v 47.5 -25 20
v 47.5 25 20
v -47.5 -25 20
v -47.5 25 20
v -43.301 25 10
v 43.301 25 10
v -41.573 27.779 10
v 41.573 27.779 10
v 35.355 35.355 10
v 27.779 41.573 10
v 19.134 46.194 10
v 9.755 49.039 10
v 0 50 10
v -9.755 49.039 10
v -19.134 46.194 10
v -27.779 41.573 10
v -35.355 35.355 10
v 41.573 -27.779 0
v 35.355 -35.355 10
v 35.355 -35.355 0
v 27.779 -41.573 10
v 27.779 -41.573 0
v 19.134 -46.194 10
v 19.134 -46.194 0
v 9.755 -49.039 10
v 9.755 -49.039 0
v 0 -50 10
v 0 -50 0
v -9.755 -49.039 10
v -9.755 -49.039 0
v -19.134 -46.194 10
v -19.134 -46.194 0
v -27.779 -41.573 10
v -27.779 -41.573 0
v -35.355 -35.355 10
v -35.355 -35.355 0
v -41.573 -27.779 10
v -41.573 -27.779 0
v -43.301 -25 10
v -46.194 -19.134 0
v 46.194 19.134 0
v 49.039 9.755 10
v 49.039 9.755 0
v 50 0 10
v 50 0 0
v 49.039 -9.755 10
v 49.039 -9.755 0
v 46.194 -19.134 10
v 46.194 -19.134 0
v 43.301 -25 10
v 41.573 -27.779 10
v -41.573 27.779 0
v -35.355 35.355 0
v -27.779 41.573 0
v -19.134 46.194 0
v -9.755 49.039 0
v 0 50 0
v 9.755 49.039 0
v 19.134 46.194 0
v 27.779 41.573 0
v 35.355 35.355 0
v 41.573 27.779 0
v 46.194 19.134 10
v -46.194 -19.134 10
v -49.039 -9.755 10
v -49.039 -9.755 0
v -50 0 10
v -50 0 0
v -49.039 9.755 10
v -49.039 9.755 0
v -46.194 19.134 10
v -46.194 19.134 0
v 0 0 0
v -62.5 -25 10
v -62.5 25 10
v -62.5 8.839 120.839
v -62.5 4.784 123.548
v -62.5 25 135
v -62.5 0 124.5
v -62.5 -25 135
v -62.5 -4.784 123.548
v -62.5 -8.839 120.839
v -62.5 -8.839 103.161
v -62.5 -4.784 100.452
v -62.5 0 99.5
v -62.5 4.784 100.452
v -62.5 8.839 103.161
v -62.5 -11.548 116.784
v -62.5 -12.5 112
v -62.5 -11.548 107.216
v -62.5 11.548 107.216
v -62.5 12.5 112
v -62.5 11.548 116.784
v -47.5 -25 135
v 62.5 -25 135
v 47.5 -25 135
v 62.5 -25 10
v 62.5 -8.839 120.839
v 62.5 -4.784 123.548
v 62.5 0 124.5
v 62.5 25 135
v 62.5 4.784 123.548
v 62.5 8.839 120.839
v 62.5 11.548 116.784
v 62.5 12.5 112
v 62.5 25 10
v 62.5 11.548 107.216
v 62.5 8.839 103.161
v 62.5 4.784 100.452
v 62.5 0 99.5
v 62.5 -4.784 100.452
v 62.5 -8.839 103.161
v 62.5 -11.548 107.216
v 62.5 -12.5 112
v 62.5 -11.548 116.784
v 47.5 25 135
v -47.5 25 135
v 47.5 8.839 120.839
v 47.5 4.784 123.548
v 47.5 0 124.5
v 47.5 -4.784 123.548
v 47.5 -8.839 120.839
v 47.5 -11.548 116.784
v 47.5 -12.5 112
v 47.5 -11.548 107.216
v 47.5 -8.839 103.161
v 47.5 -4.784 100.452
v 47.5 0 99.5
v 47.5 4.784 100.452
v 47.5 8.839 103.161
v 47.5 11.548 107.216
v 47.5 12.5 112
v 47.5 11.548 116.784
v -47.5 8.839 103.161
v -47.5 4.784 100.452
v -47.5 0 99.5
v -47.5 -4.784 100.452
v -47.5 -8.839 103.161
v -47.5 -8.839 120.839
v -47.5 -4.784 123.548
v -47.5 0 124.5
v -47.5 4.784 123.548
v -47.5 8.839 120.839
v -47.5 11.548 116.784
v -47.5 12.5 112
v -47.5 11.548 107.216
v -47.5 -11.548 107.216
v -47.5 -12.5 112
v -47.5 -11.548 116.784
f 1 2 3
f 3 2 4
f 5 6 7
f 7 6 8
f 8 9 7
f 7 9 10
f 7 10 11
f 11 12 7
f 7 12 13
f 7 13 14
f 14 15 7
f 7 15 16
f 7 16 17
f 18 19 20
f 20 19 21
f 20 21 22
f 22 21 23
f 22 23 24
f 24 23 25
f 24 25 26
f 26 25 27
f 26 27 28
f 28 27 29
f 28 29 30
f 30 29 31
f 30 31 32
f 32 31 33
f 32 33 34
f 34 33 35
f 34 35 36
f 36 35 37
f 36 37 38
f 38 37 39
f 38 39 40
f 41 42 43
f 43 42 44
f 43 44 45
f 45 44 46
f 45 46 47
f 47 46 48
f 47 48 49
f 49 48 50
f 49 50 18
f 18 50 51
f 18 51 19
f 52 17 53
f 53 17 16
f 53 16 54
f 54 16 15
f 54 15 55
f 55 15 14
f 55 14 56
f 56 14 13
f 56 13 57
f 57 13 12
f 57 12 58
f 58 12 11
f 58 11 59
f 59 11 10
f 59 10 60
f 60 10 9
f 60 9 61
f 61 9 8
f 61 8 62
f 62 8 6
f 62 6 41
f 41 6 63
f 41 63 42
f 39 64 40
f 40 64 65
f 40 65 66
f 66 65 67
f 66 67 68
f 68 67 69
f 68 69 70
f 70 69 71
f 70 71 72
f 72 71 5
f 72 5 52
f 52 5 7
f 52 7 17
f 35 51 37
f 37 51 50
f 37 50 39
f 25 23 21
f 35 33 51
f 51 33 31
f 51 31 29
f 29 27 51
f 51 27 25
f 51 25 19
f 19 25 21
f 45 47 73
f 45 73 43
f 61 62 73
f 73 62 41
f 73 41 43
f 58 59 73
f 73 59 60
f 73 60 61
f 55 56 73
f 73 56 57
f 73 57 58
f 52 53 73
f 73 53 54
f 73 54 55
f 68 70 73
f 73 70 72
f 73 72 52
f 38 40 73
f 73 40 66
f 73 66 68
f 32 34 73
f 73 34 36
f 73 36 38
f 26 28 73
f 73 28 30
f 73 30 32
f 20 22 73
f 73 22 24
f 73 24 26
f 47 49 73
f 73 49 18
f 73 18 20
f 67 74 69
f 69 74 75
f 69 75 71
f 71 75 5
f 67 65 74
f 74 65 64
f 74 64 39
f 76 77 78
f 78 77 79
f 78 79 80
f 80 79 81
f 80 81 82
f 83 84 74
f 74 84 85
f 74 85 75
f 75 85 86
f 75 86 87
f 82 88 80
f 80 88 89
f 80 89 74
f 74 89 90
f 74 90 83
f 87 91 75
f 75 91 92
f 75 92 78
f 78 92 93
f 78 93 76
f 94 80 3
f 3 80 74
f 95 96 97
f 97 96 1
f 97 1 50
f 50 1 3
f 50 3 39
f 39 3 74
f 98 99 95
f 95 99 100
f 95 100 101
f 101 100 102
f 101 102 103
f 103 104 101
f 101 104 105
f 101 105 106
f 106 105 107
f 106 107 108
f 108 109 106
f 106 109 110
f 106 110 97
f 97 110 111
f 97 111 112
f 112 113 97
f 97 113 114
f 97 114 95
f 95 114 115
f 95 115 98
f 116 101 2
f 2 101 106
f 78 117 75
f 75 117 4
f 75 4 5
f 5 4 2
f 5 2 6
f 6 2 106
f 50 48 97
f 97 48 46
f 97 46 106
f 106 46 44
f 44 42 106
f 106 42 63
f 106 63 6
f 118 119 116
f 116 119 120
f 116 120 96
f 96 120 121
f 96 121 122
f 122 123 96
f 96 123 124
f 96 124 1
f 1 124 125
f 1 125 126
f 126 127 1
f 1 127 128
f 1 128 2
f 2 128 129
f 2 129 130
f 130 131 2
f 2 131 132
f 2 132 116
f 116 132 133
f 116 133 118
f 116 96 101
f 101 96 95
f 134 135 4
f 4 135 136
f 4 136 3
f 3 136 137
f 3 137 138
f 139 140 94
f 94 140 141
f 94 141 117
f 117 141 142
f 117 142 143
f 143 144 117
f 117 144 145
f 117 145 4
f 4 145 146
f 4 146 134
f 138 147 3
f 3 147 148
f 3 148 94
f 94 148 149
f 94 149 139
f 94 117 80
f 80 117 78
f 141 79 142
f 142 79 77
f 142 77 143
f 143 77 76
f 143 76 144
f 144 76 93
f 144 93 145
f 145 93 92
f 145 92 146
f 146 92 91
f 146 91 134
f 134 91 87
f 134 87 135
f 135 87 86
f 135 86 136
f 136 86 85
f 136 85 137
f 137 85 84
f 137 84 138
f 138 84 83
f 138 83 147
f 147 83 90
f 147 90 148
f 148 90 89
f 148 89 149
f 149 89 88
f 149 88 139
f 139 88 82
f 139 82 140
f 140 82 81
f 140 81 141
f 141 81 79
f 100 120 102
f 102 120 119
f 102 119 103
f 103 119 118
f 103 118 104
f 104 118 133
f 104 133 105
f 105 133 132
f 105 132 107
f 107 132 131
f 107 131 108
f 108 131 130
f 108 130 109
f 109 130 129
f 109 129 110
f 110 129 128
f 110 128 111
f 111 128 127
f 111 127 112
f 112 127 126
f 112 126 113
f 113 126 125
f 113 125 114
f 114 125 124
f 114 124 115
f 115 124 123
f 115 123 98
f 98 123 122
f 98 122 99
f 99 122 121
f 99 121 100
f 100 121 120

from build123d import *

# Parameters (mm, degrees)
SKETCH1_R           = 50
BOSS_EXTRUDE1_DEPTH = 10
SKETCH2_W           = 125
SKETCH2_H           = 50
BOSS_EXTRUDE2_DEPTH = 10
SKETCH3_W           = 15
SKETCH3_H           = 50
BOSS_EXTRUDE3_DEPTH = 115
SKETCH4_R           = 12.5
CUT_EXTRUDE1_DEPTH  = 126


with BuildPart() as part:
    # Sketch1 → Boss-Extrude1 (new body)
    with BuildSketch(Plane.XY):
        Circle(SKETCH1_R)
    extrude(amount=BOSS_EXTRUDE1_DEPTH)

    # Sketch2 → Boss-Extrude2 (add)
    with BuildSketch(Plane.XY.offset(10)):
        Rectangle(SKETCH2_W, SKETCH2_H)
    extrude(amount=BOSS_EXTRUDE2_DEPTH)

    # Sketch3 → Boss-Extrude3 (add)
    with BuildSketch(Plane.XY.offset(20)):
        with Locations((-55, 0)):
            Rectangle(SKETCH3_W, SKETCH3_H)
        with Locations((55, 0)):
            Rectangle(SKETCH3_W, SKETCH3_H)
    extrude(amount=BOSS_EXTRUDE3_DEPTH)

    # Sketch4 → Cut-Extrude1 (cut, through all)
    with BuildSketch(Plane.ZY.offset(62.5)):
        with Locations((112, 0)):
            Circle(SKETCH4_R)
    extrude(amount=-CUT_EXTRUDE1_DEPTH, mode=Mode.SUBTRACT)


solid = part.part
